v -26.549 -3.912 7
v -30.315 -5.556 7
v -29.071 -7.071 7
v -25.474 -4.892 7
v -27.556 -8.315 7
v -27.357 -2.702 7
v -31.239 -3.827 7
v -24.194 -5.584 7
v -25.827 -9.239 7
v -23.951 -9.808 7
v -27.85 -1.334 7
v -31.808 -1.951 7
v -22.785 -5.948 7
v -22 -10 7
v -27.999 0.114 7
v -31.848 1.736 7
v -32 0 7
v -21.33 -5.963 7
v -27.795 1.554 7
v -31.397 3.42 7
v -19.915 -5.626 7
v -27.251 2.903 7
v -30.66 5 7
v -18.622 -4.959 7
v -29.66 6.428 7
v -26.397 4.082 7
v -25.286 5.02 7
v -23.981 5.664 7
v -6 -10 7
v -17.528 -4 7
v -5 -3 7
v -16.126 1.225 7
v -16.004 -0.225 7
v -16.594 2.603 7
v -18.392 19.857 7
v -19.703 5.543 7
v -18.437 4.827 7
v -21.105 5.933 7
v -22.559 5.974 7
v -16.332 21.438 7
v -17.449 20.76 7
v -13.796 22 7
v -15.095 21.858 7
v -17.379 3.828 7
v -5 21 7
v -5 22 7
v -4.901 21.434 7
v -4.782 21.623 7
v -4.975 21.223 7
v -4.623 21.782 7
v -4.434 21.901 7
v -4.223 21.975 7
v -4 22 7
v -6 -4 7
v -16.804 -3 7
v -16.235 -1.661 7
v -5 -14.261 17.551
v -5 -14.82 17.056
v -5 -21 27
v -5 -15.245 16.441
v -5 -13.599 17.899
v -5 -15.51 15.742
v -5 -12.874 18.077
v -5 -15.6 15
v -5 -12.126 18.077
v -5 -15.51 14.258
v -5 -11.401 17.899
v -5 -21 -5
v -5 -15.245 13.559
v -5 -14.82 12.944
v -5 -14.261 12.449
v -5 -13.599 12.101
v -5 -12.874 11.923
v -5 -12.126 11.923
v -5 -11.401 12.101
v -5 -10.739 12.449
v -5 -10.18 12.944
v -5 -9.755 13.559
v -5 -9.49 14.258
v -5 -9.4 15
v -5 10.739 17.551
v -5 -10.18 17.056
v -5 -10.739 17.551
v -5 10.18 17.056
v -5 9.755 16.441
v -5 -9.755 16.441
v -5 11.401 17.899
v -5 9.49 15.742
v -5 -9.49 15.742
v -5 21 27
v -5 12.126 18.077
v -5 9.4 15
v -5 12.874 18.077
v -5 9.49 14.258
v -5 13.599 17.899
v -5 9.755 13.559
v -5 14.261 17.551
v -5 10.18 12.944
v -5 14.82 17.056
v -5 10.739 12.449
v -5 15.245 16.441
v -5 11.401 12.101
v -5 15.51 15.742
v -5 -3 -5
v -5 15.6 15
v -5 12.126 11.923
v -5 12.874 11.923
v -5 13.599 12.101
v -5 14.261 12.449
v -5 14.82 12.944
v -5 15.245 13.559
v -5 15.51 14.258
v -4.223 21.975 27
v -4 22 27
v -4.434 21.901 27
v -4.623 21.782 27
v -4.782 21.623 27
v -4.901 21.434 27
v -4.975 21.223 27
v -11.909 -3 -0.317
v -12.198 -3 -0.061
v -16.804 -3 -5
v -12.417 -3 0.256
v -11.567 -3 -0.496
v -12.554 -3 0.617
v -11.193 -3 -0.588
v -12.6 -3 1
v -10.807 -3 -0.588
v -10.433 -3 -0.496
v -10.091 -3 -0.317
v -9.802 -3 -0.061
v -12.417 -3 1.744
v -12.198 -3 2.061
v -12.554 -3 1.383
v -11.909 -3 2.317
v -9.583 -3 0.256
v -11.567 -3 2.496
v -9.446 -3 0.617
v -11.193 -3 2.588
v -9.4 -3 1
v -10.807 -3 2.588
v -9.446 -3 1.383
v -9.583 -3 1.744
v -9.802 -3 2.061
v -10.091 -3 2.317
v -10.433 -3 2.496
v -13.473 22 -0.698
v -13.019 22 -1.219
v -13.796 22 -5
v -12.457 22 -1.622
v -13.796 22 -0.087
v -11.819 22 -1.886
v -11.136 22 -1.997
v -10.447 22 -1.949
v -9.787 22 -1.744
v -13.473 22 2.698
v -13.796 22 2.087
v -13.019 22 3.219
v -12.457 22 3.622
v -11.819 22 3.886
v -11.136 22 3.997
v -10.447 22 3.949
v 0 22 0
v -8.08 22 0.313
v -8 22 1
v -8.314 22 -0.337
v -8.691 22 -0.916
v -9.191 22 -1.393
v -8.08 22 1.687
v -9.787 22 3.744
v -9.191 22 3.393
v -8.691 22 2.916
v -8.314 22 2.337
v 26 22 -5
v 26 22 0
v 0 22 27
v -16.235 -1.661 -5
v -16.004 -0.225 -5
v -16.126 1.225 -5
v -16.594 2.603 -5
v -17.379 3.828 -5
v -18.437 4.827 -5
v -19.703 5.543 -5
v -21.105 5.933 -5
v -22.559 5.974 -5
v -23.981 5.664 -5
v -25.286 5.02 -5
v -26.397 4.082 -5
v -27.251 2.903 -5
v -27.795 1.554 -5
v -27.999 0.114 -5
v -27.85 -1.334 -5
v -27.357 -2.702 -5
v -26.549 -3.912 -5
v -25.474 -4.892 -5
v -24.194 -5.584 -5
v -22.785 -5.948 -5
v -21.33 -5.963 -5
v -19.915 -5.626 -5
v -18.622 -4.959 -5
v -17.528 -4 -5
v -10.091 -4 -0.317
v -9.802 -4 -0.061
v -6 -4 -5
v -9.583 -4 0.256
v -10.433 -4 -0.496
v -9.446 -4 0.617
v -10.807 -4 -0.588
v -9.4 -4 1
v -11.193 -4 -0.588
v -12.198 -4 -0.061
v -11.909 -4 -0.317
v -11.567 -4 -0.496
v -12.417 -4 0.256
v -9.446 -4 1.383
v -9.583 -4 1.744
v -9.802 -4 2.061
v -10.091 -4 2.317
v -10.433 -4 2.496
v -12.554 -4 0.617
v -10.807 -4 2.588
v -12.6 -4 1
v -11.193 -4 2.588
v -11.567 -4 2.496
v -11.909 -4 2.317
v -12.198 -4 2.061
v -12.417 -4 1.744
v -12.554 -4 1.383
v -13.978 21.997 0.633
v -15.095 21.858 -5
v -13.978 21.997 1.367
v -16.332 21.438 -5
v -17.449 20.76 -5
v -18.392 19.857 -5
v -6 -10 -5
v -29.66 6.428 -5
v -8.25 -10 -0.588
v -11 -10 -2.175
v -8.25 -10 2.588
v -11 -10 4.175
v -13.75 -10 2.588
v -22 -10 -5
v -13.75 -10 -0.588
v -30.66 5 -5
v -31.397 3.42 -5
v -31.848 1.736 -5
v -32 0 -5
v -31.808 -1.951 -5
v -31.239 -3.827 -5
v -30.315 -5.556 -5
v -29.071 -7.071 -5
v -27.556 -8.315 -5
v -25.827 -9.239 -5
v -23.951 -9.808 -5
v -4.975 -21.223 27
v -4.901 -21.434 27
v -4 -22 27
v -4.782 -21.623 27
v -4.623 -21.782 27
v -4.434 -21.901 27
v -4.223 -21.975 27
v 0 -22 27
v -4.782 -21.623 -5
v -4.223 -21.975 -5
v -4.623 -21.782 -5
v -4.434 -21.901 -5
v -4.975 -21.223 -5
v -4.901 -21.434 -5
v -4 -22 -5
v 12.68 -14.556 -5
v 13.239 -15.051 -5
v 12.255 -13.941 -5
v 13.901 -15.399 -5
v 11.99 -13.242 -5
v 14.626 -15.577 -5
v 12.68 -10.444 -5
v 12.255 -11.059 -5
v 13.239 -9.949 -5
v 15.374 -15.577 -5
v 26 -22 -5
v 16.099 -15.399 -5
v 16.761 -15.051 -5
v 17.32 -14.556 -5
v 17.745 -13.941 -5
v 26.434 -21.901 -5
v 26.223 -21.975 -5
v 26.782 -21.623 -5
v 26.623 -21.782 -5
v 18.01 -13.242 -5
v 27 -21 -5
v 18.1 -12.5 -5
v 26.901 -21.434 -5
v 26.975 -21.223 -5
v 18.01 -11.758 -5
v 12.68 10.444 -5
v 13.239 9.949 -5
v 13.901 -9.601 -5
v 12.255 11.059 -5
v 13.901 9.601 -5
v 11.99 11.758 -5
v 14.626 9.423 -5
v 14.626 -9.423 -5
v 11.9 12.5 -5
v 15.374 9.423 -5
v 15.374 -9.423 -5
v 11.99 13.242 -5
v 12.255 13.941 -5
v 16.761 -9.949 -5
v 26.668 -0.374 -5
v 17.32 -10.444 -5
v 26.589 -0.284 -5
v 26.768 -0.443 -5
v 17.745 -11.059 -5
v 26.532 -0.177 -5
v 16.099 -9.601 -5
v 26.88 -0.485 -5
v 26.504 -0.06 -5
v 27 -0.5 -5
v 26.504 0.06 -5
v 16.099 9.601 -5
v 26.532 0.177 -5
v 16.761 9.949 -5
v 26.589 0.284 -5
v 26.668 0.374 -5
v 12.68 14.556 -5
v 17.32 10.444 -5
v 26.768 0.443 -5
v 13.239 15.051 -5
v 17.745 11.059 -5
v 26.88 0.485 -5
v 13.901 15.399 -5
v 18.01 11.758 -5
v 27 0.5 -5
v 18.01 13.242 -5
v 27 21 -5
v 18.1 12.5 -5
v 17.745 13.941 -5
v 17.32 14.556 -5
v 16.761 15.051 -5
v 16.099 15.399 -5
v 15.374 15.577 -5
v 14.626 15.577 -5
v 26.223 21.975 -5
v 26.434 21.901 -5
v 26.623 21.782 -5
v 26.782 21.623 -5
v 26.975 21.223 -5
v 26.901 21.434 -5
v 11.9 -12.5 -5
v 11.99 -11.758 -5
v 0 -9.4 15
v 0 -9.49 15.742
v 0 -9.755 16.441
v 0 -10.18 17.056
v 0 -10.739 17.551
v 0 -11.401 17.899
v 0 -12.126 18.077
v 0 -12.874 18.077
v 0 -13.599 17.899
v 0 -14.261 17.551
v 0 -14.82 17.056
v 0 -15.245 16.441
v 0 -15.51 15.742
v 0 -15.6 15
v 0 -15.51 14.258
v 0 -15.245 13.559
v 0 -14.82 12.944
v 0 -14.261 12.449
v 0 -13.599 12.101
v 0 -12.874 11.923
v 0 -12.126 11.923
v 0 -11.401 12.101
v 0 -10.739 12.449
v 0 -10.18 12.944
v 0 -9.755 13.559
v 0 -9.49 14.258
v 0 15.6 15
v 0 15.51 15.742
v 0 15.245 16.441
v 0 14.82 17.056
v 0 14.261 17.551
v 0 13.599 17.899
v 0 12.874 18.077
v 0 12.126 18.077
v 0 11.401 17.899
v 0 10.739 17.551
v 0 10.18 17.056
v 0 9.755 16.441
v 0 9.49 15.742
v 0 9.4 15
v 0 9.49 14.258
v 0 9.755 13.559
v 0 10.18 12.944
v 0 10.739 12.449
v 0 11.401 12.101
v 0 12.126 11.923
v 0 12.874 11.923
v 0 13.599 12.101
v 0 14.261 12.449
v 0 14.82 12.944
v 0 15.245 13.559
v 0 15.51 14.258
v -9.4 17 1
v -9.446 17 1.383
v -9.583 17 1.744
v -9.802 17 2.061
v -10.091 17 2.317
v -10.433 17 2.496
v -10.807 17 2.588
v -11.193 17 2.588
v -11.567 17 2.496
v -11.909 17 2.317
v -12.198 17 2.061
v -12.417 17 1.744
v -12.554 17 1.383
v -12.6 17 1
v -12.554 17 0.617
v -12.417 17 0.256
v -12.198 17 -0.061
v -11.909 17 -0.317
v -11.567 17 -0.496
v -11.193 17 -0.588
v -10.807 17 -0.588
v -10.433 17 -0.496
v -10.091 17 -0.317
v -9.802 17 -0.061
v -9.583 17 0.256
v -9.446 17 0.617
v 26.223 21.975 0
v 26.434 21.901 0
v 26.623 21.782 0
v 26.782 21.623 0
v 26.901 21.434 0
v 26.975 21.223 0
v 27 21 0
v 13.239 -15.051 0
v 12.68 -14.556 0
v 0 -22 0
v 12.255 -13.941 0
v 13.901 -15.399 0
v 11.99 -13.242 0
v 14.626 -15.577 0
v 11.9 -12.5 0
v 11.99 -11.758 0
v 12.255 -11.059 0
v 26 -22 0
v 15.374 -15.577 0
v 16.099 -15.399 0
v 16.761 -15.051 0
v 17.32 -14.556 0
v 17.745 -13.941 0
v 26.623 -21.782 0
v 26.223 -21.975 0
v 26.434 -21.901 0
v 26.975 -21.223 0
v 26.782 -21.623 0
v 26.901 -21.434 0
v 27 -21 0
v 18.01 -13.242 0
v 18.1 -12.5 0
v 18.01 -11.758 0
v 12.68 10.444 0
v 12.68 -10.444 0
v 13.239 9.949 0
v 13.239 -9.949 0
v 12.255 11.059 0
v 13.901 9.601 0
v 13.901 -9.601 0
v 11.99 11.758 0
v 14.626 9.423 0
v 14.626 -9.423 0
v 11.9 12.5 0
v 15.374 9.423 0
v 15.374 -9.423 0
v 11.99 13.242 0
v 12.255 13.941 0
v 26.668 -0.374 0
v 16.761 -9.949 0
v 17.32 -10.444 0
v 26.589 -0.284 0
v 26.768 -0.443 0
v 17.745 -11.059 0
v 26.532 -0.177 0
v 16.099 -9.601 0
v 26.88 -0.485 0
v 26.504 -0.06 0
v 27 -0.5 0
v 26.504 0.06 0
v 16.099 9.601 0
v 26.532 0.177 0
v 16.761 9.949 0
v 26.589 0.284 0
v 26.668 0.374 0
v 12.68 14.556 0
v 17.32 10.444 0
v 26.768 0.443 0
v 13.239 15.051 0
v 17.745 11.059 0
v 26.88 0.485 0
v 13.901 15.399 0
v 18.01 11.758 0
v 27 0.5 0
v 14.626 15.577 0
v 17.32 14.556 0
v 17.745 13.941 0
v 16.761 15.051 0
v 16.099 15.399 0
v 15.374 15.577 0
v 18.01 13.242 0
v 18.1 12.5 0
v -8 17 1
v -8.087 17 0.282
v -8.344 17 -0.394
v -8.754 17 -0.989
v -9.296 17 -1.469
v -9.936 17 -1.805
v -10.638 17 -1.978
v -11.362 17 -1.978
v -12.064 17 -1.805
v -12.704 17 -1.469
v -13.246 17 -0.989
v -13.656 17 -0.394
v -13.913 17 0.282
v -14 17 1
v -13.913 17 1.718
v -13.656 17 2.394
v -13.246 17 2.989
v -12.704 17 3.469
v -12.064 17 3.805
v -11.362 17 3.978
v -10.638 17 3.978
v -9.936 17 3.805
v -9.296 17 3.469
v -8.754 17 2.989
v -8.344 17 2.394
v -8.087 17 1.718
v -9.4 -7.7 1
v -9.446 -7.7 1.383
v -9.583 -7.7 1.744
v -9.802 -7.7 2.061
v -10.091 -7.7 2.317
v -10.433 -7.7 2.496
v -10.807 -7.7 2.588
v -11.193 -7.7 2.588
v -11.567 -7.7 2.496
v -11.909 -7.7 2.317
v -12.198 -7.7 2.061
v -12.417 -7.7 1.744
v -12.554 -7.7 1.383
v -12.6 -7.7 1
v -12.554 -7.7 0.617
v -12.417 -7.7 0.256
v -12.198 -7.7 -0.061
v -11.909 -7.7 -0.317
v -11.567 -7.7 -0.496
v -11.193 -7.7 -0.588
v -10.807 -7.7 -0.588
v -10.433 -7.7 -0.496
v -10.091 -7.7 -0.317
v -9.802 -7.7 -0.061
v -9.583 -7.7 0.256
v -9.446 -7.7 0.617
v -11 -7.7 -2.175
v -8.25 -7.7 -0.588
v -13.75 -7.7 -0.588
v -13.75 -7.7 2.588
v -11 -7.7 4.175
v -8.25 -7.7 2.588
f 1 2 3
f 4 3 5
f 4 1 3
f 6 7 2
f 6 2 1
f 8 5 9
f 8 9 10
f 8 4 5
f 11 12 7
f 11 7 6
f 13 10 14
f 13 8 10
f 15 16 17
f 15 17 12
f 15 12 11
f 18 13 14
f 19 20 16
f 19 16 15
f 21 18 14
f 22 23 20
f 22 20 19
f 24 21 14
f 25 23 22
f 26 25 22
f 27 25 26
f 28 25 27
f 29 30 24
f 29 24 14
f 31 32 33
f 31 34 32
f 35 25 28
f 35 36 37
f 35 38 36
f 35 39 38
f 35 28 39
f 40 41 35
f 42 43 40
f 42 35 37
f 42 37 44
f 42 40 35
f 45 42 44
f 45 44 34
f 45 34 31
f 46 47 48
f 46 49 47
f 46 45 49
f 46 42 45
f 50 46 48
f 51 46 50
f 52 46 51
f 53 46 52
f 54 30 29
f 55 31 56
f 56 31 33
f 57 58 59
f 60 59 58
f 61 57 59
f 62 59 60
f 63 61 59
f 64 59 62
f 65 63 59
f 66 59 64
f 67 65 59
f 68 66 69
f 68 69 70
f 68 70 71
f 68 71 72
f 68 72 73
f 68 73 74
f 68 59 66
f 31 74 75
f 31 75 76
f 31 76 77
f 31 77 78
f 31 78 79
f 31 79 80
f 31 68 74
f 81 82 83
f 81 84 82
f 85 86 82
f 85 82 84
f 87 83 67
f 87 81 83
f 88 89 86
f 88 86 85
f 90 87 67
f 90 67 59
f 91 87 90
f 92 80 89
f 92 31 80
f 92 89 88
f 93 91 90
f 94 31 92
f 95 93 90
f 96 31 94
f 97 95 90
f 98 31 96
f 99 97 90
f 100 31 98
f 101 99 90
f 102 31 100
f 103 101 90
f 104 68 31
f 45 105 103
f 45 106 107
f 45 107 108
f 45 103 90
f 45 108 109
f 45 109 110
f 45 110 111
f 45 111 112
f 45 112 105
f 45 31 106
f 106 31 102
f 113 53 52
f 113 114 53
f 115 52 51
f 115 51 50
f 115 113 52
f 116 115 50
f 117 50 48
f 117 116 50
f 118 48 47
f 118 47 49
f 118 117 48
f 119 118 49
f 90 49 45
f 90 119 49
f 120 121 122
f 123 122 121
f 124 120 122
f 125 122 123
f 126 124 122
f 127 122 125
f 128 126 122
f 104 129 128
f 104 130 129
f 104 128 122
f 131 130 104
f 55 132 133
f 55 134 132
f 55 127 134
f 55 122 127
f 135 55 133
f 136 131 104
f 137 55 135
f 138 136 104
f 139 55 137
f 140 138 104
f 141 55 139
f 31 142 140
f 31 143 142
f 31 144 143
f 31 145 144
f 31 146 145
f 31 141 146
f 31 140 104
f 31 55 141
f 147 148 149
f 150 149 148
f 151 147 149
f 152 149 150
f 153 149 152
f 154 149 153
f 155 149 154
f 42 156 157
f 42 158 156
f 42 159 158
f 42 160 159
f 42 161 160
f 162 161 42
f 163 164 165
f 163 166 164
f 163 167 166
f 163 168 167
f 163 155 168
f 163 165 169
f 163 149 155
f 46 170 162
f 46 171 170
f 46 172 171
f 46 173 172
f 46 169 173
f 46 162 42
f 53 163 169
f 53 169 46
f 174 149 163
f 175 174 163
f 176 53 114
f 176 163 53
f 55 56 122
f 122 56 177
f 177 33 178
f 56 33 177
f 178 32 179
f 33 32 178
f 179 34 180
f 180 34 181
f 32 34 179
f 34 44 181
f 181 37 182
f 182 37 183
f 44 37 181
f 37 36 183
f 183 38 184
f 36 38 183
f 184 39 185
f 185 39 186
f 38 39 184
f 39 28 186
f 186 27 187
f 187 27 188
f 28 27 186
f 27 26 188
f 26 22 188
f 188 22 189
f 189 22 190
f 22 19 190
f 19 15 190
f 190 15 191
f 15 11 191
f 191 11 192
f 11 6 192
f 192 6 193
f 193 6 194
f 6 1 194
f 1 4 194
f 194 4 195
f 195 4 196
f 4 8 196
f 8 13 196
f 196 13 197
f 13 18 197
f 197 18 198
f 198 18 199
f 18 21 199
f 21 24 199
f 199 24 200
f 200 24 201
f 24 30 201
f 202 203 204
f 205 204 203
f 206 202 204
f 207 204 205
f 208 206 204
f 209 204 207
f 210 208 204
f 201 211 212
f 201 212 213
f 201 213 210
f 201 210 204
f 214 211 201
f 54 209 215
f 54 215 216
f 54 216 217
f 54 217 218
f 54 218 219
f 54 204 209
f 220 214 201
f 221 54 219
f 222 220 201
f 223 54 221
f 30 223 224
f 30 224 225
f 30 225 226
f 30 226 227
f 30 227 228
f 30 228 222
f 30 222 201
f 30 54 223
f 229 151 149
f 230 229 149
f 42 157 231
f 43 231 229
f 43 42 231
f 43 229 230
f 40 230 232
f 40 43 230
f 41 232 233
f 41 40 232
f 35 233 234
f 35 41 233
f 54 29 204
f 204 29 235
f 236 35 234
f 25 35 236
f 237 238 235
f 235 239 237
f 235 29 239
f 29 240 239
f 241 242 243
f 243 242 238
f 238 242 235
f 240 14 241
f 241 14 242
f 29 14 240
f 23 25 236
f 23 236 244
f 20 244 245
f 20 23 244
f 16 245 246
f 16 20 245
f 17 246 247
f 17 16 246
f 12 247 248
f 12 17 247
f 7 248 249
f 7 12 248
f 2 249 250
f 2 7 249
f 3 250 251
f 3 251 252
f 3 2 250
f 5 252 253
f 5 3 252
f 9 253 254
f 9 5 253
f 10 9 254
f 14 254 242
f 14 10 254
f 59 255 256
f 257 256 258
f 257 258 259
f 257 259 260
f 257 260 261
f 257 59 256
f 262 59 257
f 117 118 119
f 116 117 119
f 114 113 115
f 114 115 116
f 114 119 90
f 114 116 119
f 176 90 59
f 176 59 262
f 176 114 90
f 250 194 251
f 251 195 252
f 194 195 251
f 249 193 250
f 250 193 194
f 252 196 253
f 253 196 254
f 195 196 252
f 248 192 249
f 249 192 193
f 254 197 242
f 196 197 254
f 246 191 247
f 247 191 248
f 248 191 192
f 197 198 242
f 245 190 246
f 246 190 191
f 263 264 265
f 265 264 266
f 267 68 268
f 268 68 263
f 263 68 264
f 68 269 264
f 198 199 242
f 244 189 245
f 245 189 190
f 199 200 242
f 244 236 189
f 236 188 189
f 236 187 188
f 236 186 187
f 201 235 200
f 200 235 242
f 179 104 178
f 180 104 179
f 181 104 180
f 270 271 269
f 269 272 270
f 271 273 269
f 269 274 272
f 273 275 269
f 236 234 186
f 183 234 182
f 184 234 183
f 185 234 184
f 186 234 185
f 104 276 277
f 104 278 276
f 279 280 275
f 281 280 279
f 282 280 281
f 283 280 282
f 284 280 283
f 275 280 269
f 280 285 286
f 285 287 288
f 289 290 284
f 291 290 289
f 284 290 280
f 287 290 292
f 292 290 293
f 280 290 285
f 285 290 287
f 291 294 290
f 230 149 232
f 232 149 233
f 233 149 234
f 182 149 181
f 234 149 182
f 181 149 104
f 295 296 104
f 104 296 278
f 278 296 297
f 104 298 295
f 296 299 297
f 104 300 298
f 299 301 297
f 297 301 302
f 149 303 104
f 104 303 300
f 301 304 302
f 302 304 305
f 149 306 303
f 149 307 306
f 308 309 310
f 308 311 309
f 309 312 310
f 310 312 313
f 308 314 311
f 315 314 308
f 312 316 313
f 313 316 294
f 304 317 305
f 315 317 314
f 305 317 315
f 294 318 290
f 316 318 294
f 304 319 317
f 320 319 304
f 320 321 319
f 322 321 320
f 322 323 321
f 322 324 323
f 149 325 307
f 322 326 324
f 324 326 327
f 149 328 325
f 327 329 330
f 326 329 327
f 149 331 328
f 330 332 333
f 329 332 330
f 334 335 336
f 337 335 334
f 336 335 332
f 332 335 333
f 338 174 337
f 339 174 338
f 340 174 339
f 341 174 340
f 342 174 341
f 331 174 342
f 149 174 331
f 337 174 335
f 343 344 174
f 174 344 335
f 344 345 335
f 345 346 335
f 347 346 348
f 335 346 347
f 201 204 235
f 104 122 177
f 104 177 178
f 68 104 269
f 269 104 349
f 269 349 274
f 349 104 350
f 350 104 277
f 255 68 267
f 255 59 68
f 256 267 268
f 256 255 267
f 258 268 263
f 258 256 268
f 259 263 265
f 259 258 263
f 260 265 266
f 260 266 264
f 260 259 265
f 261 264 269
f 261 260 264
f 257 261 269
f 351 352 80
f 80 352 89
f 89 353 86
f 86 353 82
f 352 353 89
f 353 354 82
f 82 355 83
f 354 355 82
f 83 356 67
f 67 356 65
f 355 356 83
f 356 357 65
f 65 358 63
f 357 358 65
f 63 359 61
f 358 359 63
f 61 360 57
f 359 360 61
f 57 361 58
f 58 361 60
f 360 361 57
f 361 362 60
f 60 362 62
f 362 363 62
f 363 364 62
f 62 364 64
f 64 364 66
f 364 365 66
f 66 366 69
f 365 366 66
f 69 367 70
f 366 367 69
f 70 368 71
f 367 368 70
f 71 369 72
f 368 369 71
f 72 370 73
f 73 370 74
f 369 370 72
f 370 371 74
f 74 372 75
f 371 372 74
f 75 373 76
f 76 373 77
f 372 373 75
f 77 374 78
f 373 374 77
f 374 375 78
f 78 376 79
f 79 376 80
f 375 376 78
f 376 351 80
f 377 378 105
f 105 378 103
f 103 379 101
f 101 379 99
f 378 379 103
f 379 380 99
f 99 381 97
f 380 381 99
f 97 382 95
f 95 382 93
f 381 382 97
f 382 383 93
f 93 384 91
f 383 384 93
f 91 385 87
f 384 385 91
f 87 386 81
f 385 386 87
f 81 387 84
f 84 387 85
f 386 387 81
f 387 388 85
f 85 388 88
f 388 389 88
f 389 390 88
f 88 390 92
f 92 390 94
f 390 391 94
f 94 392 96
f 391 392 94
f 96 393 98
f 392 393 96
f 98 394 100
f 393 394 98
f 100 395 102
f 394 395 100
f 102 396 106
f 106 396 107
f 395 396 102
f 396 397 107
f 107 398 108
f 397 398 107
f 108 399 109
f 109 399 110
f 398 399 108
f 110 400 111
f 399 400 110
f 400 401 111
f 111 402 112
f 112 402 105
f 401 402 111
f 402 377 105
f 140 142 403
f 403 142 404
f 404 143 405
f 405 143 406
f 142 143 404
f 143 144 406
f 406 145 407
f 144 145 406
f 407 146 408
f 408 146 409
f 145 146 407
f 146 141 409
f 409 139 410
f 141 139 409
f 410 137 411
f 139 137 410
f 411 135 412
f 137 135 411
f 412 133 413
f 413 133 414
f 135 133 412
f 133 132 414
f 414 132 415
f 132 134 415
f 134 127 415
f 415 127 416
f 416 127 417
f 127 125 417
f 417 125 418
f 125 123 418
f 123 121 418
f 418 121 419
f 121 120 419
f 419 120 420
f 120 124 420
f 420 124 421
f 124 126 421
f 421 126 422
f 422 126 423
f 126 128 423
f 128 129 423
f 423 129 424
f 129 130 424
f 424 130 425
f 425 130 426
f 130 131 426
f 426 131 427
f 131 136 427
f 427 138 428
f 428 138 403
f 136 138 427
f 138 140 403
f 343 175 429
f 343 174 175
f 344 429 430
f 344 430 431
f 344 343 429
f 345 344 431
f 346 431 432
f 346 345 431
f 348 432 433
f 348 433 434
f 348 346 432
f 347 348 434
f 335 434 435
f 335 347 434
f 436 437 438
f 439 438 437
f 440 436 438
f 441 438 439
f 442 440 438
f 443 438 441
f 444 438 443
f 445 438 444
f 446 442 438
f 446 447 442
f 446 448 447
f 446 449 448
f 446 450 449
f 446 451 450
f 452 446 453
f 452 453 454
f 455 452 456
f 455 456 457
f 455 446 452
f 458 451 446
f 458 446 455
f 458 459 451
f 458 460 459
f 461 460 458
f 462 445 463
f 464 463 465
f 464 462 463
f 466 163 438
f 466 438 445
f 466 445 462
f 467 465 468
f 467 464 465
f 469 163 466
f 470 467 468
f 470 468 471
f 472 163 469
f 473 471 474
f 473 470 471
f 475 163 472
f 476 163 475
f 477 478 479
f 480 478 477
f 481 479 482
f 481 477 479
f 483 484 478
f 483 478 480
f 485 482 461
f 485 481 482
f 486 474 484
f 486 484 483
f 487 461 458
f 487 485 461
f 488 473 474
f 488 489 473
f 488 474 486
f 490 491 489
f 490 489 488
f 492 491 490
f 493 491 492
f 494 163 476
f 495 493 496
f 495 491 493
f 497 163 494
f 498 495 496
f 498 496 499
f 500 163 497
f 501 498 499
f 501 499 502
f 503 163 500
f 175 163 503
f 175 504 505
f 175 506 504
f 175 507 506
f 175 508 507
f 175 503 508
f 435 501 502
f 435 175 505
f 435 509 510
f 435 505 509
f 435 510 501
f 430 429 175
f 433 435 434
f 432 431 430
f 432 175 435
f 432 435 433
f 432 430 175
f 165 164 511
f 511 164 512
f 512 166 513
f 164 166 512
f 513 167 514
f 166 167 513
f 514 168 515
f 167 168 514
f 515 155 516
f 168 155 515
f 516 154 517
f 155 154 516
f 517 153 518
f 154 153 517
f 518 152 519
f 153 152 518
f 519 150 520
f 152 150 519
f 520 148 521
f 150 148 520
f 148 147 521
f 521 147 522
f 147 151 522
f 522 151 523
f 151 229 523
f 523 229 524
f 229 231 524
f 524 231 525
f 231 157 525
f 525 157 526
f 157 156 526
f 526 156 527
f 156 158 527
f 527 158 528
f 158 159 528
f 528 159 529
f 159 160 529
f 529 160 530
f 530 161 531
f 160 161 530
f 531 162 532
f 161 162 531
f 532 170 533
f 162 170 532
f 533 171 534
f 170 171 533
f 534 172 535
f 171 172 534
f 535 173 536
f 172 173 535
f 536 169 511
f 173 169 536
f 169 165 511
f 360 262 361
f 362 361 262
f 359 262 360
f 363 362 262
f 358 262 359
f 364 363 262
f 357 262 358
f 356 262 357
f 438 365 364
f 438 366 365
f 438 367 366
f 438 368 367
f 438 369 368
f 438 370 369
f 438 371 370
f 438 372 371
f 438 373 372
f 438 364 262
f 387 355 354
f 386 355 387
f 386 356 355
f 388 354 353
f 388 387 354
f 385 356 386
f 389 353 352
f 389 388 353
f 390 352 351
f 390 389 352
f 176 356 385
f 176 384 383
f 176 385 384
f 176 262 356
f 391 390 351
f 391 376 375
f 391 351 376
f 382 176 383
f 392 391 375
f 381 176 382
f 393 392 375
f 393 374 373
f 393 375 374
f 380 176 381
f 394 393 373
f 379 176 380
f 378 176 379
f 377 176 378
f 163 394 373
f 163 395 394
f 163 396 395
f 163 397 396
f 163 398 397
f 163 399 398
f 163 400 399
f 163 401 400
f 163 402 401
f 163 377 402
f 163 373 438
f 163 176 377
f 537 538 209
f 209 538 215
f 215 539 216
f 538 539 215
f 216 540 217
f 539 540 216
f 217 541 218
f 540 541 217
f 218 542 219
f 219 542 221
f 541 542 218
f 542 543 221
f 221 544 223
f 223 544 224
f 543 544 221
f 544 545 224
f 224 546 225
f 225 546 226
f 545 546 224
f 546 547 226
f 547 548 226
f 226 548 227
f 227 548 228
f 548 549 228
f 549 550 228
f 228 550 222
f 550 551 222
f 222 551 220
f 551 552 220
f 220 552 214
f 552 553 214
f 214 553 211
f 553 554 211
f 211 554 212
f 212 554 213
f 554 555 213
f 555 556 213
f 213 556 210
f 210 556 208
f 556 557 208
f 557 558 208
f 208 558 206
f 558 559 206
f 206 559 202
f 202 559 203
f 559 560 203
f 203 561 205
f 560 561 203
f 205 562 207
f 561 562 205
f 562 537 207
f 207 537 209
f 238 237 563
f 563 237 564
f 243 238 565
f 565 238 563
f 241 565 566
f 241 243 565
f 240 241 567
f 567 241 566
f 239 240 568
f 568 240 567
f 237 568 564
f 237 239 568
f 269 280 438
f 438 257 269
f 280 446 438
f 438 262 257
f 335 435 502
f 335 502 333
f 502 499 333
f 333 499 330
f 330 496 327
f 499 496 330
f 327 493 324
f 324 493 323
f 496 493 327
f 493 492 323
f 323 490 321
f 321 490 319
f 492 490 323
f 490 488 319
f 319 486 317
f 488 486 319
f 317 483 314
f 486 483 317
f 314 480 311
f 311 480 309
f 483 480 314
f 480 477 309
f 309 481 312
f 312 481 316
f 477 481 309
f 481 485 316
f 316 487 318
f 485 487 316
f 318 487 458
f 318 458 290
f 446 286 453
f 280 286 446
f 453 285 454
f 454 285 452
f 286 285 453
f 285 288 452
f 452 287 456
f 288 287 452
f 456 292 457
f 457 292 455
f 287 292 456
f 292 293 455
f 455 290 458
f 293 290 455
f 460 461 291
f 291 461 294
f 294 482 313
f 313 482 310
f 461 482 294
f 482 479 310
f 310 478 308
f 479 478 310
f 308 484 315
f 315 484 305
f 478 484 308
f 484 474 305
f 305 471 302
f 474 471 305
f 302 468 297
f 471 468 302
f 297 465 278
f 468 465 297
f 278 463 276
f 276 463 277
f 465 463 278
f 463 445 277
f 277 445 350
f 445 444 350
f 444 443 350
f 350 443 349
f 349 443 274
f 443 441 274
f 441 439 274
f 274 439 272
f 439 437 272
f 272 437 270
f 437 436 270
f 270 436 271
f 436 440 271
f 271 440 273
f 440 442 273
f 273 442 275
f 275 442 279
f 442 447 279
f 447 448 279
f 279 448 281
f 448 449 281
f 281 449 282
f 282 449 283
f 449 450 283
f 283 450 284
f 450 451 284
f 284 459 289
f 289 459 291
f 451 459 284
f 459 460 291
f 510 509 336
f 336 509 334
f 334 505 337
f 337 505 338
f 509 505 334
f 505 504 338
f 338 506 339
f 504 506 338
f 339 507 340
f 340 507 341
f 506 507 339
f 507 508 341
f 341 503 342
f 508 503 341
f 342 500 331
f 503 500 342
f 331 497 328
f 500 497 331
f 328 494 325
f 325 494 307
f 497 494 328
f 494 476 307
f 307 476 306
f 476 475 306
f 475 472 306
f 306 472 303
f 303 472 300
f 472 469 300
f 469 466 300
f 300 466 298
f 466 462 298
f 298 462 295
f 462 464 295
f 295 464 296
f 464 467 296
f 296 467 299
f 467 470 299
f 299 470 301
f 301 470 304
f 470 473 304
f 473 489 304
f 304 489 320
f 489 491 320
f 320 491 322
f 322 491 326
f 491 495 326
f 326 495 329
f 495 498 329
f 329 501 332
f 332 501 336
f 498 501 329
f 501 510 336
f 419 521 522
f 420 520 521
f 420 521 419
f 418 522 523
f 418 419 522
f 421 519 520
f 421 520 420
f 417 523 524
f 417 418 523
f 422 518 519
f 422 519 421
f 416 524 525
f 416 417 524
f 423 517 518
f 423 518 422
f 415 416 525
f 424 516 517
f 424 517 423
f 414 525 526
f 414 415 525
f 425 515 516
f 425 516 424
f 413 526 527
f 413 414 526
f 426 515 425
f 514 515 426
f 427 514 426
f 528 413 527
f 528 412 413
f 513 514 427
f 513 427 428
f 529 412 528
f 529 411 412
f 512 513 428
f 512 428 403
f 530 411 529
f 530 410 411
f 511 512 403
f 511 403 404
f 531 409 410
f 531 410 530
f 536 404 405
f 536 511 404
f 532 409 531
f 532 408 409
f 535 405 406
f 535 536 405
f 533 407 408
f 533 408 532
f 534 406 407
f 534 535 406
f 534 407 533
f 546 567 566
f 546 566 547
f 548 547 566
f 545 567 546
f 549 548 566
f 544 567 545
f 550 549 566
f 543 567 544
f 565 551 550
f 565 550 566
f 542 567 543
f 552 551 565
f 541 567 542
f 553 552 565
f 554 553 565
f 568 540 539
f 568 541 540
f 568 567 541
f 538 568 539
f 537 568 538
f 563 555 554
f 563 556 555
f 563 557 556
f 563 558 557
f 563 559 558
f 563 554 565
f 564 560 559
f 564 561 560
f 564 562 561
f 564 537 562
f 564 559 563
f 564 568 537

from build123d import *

# Parameters (mm, degrees)
PAD_DEPTH            = 22
SKETCH001_R          = 3.1
SKETCH001_R_2        = 0.5
POCKET_DEPTH         = 5.001
POCKET_DEPTH_BACK    = -27.001
SKETCH002_R          = 3.1
POCKET001_DEPTH      = 5
SKETCH003_R          = 1.6
POCKET002_DEPTH      = 22.001
POCKET002_DEPTH_BACK = -22.001
SKETCH004_R          = 3
POCKET003_DEPTH      = 5
POCKET004_DEPTH      = 2.3
FILLET_R             = 1


with BuildPart() as part:
    # Sketch → Pad (new body, symmetric)
    with BuildSketch(Plane.XZ):
        Polygon((0, 27), (0, 0), (27, 0), (27, -5), (-32, -5), (-32, 7), (-5, 7), (-5, 27), align=None)
    extrude(amount=PAD_DEPTH, both=True)

    # Sketch001 → Pocket (cut, two sides)
    with BuildSketch(Plane.XY) as pocket_sk:
        with Locations((15, 12.5)):
            Circle(SKETCH001_R)
        with Locations((15, -12.5)):
            Circle(SKETCH001_R)
        with Locations((27, 0)):
            Circle(SKETCH001_R_2)
        with BuildLine():
            ThreePointArc((-16.803848, -3), (-26.859933, 3.518672), (-17.527864, -4))
            Line((-6, -4), (-17.527864, -4))
            Line((-6, -4), (-6, -10))
            Line((-6, -10), (-22, -10))
            ThreePointArc((-29.660444, 6.427876), (-31.063078, -4.226183), (-22, -10))
            Line((-18.392302, 19.856726), (-29.660444, 6.427876))
            ThreePointArc((-13.796055, 22), (-16.331753, 21.437843), (-18.392302, 19.856726))
            Line((-13.796055, 22), (-13.796055, 28.799225))
            Line((-13.796055, 28.799225), (-40.339119, 28.799225))
            Line((-40.339119, 28.799225), (-40.339119, -28.958258))
            Line((-40.339119, -28.958258), (-5, -28.958258))
            Line((-5, -28.958258), (-5, -3))
            Line((-16.803848, -3), (-5, -3))
        make_face()
    extrude(amount=-POCKET_DEPTH, mode=Mode.SUBTRACT)
    extrude(pocket_sk.sketch, amount=-POCKET_DEPTH_BACK, mode=Mode.SUBTRACT)

    # Sketch002 → Pocket001 (cut)
    with BuildSketch(Plane.YZ):
        with Locations((-12.5, 15)):
            Circle(SKETCH002_R)
        with Locations((12.5, 15)):
            Circle(SKETCH002_R)
    extrude(amount=-POCKET001_DEPTH, mode=Mode.SUBTRACT)

    # Sketch003 → Pocket002 (cut, two sides)
    with BuildSketch(Plane.XZ) as pocket002_sk:
        with Locations((-11, 1)):
            Circle(SKETCH003_R)
    extrude(amount=-POCKET002_DEPTH, mode=Mode.SUBTRACT)
    extrude(pocket002_sk.sketch, amount=-POCKET002_DEPTH_BACK, mode=Mode.SUBTRACT)

    # Sketch004 (on Face5 of Pocket002) → Pocket003 (cut)
    with BuildSketch(Plane(origin=(0, 22, 0), x_dir=(1, 0, 0), z_dir=(0, 1, 0))):
        with Locations((-11, -1)):
            Circle(SKETCH004_R)
    extrude(amount=-POCKET003_DEPTH, mode=Mode.SUBTRACT)

    # Sketch005 (on Face11 of Pocket003) → Pocket004 (cut)
    with BuildSketch(Plane.XZ.offset(10)):
        Polygon((-8.25, -0.587713), (-8.25, 2.587713), (-11, 4.175426), (-13.75, 2.587713), (-13.75, -0.587713), (-11, -2.175426), align=None)
    extrude(amount=-POCKET004_DEPTH, mode=Mode.SUBTRACT)

    # Fillet
    fillet_edges = [part.edges().sort_by_distance(p)[0] for p in [
        (27, -22, -2.5),
        (27, 22, -2.5),
        (-5, -22, 11),
        (-5, 22, 17),
    ]]
    fillet(fillet_edges, radius=FILLET_R)


solid = part.part
